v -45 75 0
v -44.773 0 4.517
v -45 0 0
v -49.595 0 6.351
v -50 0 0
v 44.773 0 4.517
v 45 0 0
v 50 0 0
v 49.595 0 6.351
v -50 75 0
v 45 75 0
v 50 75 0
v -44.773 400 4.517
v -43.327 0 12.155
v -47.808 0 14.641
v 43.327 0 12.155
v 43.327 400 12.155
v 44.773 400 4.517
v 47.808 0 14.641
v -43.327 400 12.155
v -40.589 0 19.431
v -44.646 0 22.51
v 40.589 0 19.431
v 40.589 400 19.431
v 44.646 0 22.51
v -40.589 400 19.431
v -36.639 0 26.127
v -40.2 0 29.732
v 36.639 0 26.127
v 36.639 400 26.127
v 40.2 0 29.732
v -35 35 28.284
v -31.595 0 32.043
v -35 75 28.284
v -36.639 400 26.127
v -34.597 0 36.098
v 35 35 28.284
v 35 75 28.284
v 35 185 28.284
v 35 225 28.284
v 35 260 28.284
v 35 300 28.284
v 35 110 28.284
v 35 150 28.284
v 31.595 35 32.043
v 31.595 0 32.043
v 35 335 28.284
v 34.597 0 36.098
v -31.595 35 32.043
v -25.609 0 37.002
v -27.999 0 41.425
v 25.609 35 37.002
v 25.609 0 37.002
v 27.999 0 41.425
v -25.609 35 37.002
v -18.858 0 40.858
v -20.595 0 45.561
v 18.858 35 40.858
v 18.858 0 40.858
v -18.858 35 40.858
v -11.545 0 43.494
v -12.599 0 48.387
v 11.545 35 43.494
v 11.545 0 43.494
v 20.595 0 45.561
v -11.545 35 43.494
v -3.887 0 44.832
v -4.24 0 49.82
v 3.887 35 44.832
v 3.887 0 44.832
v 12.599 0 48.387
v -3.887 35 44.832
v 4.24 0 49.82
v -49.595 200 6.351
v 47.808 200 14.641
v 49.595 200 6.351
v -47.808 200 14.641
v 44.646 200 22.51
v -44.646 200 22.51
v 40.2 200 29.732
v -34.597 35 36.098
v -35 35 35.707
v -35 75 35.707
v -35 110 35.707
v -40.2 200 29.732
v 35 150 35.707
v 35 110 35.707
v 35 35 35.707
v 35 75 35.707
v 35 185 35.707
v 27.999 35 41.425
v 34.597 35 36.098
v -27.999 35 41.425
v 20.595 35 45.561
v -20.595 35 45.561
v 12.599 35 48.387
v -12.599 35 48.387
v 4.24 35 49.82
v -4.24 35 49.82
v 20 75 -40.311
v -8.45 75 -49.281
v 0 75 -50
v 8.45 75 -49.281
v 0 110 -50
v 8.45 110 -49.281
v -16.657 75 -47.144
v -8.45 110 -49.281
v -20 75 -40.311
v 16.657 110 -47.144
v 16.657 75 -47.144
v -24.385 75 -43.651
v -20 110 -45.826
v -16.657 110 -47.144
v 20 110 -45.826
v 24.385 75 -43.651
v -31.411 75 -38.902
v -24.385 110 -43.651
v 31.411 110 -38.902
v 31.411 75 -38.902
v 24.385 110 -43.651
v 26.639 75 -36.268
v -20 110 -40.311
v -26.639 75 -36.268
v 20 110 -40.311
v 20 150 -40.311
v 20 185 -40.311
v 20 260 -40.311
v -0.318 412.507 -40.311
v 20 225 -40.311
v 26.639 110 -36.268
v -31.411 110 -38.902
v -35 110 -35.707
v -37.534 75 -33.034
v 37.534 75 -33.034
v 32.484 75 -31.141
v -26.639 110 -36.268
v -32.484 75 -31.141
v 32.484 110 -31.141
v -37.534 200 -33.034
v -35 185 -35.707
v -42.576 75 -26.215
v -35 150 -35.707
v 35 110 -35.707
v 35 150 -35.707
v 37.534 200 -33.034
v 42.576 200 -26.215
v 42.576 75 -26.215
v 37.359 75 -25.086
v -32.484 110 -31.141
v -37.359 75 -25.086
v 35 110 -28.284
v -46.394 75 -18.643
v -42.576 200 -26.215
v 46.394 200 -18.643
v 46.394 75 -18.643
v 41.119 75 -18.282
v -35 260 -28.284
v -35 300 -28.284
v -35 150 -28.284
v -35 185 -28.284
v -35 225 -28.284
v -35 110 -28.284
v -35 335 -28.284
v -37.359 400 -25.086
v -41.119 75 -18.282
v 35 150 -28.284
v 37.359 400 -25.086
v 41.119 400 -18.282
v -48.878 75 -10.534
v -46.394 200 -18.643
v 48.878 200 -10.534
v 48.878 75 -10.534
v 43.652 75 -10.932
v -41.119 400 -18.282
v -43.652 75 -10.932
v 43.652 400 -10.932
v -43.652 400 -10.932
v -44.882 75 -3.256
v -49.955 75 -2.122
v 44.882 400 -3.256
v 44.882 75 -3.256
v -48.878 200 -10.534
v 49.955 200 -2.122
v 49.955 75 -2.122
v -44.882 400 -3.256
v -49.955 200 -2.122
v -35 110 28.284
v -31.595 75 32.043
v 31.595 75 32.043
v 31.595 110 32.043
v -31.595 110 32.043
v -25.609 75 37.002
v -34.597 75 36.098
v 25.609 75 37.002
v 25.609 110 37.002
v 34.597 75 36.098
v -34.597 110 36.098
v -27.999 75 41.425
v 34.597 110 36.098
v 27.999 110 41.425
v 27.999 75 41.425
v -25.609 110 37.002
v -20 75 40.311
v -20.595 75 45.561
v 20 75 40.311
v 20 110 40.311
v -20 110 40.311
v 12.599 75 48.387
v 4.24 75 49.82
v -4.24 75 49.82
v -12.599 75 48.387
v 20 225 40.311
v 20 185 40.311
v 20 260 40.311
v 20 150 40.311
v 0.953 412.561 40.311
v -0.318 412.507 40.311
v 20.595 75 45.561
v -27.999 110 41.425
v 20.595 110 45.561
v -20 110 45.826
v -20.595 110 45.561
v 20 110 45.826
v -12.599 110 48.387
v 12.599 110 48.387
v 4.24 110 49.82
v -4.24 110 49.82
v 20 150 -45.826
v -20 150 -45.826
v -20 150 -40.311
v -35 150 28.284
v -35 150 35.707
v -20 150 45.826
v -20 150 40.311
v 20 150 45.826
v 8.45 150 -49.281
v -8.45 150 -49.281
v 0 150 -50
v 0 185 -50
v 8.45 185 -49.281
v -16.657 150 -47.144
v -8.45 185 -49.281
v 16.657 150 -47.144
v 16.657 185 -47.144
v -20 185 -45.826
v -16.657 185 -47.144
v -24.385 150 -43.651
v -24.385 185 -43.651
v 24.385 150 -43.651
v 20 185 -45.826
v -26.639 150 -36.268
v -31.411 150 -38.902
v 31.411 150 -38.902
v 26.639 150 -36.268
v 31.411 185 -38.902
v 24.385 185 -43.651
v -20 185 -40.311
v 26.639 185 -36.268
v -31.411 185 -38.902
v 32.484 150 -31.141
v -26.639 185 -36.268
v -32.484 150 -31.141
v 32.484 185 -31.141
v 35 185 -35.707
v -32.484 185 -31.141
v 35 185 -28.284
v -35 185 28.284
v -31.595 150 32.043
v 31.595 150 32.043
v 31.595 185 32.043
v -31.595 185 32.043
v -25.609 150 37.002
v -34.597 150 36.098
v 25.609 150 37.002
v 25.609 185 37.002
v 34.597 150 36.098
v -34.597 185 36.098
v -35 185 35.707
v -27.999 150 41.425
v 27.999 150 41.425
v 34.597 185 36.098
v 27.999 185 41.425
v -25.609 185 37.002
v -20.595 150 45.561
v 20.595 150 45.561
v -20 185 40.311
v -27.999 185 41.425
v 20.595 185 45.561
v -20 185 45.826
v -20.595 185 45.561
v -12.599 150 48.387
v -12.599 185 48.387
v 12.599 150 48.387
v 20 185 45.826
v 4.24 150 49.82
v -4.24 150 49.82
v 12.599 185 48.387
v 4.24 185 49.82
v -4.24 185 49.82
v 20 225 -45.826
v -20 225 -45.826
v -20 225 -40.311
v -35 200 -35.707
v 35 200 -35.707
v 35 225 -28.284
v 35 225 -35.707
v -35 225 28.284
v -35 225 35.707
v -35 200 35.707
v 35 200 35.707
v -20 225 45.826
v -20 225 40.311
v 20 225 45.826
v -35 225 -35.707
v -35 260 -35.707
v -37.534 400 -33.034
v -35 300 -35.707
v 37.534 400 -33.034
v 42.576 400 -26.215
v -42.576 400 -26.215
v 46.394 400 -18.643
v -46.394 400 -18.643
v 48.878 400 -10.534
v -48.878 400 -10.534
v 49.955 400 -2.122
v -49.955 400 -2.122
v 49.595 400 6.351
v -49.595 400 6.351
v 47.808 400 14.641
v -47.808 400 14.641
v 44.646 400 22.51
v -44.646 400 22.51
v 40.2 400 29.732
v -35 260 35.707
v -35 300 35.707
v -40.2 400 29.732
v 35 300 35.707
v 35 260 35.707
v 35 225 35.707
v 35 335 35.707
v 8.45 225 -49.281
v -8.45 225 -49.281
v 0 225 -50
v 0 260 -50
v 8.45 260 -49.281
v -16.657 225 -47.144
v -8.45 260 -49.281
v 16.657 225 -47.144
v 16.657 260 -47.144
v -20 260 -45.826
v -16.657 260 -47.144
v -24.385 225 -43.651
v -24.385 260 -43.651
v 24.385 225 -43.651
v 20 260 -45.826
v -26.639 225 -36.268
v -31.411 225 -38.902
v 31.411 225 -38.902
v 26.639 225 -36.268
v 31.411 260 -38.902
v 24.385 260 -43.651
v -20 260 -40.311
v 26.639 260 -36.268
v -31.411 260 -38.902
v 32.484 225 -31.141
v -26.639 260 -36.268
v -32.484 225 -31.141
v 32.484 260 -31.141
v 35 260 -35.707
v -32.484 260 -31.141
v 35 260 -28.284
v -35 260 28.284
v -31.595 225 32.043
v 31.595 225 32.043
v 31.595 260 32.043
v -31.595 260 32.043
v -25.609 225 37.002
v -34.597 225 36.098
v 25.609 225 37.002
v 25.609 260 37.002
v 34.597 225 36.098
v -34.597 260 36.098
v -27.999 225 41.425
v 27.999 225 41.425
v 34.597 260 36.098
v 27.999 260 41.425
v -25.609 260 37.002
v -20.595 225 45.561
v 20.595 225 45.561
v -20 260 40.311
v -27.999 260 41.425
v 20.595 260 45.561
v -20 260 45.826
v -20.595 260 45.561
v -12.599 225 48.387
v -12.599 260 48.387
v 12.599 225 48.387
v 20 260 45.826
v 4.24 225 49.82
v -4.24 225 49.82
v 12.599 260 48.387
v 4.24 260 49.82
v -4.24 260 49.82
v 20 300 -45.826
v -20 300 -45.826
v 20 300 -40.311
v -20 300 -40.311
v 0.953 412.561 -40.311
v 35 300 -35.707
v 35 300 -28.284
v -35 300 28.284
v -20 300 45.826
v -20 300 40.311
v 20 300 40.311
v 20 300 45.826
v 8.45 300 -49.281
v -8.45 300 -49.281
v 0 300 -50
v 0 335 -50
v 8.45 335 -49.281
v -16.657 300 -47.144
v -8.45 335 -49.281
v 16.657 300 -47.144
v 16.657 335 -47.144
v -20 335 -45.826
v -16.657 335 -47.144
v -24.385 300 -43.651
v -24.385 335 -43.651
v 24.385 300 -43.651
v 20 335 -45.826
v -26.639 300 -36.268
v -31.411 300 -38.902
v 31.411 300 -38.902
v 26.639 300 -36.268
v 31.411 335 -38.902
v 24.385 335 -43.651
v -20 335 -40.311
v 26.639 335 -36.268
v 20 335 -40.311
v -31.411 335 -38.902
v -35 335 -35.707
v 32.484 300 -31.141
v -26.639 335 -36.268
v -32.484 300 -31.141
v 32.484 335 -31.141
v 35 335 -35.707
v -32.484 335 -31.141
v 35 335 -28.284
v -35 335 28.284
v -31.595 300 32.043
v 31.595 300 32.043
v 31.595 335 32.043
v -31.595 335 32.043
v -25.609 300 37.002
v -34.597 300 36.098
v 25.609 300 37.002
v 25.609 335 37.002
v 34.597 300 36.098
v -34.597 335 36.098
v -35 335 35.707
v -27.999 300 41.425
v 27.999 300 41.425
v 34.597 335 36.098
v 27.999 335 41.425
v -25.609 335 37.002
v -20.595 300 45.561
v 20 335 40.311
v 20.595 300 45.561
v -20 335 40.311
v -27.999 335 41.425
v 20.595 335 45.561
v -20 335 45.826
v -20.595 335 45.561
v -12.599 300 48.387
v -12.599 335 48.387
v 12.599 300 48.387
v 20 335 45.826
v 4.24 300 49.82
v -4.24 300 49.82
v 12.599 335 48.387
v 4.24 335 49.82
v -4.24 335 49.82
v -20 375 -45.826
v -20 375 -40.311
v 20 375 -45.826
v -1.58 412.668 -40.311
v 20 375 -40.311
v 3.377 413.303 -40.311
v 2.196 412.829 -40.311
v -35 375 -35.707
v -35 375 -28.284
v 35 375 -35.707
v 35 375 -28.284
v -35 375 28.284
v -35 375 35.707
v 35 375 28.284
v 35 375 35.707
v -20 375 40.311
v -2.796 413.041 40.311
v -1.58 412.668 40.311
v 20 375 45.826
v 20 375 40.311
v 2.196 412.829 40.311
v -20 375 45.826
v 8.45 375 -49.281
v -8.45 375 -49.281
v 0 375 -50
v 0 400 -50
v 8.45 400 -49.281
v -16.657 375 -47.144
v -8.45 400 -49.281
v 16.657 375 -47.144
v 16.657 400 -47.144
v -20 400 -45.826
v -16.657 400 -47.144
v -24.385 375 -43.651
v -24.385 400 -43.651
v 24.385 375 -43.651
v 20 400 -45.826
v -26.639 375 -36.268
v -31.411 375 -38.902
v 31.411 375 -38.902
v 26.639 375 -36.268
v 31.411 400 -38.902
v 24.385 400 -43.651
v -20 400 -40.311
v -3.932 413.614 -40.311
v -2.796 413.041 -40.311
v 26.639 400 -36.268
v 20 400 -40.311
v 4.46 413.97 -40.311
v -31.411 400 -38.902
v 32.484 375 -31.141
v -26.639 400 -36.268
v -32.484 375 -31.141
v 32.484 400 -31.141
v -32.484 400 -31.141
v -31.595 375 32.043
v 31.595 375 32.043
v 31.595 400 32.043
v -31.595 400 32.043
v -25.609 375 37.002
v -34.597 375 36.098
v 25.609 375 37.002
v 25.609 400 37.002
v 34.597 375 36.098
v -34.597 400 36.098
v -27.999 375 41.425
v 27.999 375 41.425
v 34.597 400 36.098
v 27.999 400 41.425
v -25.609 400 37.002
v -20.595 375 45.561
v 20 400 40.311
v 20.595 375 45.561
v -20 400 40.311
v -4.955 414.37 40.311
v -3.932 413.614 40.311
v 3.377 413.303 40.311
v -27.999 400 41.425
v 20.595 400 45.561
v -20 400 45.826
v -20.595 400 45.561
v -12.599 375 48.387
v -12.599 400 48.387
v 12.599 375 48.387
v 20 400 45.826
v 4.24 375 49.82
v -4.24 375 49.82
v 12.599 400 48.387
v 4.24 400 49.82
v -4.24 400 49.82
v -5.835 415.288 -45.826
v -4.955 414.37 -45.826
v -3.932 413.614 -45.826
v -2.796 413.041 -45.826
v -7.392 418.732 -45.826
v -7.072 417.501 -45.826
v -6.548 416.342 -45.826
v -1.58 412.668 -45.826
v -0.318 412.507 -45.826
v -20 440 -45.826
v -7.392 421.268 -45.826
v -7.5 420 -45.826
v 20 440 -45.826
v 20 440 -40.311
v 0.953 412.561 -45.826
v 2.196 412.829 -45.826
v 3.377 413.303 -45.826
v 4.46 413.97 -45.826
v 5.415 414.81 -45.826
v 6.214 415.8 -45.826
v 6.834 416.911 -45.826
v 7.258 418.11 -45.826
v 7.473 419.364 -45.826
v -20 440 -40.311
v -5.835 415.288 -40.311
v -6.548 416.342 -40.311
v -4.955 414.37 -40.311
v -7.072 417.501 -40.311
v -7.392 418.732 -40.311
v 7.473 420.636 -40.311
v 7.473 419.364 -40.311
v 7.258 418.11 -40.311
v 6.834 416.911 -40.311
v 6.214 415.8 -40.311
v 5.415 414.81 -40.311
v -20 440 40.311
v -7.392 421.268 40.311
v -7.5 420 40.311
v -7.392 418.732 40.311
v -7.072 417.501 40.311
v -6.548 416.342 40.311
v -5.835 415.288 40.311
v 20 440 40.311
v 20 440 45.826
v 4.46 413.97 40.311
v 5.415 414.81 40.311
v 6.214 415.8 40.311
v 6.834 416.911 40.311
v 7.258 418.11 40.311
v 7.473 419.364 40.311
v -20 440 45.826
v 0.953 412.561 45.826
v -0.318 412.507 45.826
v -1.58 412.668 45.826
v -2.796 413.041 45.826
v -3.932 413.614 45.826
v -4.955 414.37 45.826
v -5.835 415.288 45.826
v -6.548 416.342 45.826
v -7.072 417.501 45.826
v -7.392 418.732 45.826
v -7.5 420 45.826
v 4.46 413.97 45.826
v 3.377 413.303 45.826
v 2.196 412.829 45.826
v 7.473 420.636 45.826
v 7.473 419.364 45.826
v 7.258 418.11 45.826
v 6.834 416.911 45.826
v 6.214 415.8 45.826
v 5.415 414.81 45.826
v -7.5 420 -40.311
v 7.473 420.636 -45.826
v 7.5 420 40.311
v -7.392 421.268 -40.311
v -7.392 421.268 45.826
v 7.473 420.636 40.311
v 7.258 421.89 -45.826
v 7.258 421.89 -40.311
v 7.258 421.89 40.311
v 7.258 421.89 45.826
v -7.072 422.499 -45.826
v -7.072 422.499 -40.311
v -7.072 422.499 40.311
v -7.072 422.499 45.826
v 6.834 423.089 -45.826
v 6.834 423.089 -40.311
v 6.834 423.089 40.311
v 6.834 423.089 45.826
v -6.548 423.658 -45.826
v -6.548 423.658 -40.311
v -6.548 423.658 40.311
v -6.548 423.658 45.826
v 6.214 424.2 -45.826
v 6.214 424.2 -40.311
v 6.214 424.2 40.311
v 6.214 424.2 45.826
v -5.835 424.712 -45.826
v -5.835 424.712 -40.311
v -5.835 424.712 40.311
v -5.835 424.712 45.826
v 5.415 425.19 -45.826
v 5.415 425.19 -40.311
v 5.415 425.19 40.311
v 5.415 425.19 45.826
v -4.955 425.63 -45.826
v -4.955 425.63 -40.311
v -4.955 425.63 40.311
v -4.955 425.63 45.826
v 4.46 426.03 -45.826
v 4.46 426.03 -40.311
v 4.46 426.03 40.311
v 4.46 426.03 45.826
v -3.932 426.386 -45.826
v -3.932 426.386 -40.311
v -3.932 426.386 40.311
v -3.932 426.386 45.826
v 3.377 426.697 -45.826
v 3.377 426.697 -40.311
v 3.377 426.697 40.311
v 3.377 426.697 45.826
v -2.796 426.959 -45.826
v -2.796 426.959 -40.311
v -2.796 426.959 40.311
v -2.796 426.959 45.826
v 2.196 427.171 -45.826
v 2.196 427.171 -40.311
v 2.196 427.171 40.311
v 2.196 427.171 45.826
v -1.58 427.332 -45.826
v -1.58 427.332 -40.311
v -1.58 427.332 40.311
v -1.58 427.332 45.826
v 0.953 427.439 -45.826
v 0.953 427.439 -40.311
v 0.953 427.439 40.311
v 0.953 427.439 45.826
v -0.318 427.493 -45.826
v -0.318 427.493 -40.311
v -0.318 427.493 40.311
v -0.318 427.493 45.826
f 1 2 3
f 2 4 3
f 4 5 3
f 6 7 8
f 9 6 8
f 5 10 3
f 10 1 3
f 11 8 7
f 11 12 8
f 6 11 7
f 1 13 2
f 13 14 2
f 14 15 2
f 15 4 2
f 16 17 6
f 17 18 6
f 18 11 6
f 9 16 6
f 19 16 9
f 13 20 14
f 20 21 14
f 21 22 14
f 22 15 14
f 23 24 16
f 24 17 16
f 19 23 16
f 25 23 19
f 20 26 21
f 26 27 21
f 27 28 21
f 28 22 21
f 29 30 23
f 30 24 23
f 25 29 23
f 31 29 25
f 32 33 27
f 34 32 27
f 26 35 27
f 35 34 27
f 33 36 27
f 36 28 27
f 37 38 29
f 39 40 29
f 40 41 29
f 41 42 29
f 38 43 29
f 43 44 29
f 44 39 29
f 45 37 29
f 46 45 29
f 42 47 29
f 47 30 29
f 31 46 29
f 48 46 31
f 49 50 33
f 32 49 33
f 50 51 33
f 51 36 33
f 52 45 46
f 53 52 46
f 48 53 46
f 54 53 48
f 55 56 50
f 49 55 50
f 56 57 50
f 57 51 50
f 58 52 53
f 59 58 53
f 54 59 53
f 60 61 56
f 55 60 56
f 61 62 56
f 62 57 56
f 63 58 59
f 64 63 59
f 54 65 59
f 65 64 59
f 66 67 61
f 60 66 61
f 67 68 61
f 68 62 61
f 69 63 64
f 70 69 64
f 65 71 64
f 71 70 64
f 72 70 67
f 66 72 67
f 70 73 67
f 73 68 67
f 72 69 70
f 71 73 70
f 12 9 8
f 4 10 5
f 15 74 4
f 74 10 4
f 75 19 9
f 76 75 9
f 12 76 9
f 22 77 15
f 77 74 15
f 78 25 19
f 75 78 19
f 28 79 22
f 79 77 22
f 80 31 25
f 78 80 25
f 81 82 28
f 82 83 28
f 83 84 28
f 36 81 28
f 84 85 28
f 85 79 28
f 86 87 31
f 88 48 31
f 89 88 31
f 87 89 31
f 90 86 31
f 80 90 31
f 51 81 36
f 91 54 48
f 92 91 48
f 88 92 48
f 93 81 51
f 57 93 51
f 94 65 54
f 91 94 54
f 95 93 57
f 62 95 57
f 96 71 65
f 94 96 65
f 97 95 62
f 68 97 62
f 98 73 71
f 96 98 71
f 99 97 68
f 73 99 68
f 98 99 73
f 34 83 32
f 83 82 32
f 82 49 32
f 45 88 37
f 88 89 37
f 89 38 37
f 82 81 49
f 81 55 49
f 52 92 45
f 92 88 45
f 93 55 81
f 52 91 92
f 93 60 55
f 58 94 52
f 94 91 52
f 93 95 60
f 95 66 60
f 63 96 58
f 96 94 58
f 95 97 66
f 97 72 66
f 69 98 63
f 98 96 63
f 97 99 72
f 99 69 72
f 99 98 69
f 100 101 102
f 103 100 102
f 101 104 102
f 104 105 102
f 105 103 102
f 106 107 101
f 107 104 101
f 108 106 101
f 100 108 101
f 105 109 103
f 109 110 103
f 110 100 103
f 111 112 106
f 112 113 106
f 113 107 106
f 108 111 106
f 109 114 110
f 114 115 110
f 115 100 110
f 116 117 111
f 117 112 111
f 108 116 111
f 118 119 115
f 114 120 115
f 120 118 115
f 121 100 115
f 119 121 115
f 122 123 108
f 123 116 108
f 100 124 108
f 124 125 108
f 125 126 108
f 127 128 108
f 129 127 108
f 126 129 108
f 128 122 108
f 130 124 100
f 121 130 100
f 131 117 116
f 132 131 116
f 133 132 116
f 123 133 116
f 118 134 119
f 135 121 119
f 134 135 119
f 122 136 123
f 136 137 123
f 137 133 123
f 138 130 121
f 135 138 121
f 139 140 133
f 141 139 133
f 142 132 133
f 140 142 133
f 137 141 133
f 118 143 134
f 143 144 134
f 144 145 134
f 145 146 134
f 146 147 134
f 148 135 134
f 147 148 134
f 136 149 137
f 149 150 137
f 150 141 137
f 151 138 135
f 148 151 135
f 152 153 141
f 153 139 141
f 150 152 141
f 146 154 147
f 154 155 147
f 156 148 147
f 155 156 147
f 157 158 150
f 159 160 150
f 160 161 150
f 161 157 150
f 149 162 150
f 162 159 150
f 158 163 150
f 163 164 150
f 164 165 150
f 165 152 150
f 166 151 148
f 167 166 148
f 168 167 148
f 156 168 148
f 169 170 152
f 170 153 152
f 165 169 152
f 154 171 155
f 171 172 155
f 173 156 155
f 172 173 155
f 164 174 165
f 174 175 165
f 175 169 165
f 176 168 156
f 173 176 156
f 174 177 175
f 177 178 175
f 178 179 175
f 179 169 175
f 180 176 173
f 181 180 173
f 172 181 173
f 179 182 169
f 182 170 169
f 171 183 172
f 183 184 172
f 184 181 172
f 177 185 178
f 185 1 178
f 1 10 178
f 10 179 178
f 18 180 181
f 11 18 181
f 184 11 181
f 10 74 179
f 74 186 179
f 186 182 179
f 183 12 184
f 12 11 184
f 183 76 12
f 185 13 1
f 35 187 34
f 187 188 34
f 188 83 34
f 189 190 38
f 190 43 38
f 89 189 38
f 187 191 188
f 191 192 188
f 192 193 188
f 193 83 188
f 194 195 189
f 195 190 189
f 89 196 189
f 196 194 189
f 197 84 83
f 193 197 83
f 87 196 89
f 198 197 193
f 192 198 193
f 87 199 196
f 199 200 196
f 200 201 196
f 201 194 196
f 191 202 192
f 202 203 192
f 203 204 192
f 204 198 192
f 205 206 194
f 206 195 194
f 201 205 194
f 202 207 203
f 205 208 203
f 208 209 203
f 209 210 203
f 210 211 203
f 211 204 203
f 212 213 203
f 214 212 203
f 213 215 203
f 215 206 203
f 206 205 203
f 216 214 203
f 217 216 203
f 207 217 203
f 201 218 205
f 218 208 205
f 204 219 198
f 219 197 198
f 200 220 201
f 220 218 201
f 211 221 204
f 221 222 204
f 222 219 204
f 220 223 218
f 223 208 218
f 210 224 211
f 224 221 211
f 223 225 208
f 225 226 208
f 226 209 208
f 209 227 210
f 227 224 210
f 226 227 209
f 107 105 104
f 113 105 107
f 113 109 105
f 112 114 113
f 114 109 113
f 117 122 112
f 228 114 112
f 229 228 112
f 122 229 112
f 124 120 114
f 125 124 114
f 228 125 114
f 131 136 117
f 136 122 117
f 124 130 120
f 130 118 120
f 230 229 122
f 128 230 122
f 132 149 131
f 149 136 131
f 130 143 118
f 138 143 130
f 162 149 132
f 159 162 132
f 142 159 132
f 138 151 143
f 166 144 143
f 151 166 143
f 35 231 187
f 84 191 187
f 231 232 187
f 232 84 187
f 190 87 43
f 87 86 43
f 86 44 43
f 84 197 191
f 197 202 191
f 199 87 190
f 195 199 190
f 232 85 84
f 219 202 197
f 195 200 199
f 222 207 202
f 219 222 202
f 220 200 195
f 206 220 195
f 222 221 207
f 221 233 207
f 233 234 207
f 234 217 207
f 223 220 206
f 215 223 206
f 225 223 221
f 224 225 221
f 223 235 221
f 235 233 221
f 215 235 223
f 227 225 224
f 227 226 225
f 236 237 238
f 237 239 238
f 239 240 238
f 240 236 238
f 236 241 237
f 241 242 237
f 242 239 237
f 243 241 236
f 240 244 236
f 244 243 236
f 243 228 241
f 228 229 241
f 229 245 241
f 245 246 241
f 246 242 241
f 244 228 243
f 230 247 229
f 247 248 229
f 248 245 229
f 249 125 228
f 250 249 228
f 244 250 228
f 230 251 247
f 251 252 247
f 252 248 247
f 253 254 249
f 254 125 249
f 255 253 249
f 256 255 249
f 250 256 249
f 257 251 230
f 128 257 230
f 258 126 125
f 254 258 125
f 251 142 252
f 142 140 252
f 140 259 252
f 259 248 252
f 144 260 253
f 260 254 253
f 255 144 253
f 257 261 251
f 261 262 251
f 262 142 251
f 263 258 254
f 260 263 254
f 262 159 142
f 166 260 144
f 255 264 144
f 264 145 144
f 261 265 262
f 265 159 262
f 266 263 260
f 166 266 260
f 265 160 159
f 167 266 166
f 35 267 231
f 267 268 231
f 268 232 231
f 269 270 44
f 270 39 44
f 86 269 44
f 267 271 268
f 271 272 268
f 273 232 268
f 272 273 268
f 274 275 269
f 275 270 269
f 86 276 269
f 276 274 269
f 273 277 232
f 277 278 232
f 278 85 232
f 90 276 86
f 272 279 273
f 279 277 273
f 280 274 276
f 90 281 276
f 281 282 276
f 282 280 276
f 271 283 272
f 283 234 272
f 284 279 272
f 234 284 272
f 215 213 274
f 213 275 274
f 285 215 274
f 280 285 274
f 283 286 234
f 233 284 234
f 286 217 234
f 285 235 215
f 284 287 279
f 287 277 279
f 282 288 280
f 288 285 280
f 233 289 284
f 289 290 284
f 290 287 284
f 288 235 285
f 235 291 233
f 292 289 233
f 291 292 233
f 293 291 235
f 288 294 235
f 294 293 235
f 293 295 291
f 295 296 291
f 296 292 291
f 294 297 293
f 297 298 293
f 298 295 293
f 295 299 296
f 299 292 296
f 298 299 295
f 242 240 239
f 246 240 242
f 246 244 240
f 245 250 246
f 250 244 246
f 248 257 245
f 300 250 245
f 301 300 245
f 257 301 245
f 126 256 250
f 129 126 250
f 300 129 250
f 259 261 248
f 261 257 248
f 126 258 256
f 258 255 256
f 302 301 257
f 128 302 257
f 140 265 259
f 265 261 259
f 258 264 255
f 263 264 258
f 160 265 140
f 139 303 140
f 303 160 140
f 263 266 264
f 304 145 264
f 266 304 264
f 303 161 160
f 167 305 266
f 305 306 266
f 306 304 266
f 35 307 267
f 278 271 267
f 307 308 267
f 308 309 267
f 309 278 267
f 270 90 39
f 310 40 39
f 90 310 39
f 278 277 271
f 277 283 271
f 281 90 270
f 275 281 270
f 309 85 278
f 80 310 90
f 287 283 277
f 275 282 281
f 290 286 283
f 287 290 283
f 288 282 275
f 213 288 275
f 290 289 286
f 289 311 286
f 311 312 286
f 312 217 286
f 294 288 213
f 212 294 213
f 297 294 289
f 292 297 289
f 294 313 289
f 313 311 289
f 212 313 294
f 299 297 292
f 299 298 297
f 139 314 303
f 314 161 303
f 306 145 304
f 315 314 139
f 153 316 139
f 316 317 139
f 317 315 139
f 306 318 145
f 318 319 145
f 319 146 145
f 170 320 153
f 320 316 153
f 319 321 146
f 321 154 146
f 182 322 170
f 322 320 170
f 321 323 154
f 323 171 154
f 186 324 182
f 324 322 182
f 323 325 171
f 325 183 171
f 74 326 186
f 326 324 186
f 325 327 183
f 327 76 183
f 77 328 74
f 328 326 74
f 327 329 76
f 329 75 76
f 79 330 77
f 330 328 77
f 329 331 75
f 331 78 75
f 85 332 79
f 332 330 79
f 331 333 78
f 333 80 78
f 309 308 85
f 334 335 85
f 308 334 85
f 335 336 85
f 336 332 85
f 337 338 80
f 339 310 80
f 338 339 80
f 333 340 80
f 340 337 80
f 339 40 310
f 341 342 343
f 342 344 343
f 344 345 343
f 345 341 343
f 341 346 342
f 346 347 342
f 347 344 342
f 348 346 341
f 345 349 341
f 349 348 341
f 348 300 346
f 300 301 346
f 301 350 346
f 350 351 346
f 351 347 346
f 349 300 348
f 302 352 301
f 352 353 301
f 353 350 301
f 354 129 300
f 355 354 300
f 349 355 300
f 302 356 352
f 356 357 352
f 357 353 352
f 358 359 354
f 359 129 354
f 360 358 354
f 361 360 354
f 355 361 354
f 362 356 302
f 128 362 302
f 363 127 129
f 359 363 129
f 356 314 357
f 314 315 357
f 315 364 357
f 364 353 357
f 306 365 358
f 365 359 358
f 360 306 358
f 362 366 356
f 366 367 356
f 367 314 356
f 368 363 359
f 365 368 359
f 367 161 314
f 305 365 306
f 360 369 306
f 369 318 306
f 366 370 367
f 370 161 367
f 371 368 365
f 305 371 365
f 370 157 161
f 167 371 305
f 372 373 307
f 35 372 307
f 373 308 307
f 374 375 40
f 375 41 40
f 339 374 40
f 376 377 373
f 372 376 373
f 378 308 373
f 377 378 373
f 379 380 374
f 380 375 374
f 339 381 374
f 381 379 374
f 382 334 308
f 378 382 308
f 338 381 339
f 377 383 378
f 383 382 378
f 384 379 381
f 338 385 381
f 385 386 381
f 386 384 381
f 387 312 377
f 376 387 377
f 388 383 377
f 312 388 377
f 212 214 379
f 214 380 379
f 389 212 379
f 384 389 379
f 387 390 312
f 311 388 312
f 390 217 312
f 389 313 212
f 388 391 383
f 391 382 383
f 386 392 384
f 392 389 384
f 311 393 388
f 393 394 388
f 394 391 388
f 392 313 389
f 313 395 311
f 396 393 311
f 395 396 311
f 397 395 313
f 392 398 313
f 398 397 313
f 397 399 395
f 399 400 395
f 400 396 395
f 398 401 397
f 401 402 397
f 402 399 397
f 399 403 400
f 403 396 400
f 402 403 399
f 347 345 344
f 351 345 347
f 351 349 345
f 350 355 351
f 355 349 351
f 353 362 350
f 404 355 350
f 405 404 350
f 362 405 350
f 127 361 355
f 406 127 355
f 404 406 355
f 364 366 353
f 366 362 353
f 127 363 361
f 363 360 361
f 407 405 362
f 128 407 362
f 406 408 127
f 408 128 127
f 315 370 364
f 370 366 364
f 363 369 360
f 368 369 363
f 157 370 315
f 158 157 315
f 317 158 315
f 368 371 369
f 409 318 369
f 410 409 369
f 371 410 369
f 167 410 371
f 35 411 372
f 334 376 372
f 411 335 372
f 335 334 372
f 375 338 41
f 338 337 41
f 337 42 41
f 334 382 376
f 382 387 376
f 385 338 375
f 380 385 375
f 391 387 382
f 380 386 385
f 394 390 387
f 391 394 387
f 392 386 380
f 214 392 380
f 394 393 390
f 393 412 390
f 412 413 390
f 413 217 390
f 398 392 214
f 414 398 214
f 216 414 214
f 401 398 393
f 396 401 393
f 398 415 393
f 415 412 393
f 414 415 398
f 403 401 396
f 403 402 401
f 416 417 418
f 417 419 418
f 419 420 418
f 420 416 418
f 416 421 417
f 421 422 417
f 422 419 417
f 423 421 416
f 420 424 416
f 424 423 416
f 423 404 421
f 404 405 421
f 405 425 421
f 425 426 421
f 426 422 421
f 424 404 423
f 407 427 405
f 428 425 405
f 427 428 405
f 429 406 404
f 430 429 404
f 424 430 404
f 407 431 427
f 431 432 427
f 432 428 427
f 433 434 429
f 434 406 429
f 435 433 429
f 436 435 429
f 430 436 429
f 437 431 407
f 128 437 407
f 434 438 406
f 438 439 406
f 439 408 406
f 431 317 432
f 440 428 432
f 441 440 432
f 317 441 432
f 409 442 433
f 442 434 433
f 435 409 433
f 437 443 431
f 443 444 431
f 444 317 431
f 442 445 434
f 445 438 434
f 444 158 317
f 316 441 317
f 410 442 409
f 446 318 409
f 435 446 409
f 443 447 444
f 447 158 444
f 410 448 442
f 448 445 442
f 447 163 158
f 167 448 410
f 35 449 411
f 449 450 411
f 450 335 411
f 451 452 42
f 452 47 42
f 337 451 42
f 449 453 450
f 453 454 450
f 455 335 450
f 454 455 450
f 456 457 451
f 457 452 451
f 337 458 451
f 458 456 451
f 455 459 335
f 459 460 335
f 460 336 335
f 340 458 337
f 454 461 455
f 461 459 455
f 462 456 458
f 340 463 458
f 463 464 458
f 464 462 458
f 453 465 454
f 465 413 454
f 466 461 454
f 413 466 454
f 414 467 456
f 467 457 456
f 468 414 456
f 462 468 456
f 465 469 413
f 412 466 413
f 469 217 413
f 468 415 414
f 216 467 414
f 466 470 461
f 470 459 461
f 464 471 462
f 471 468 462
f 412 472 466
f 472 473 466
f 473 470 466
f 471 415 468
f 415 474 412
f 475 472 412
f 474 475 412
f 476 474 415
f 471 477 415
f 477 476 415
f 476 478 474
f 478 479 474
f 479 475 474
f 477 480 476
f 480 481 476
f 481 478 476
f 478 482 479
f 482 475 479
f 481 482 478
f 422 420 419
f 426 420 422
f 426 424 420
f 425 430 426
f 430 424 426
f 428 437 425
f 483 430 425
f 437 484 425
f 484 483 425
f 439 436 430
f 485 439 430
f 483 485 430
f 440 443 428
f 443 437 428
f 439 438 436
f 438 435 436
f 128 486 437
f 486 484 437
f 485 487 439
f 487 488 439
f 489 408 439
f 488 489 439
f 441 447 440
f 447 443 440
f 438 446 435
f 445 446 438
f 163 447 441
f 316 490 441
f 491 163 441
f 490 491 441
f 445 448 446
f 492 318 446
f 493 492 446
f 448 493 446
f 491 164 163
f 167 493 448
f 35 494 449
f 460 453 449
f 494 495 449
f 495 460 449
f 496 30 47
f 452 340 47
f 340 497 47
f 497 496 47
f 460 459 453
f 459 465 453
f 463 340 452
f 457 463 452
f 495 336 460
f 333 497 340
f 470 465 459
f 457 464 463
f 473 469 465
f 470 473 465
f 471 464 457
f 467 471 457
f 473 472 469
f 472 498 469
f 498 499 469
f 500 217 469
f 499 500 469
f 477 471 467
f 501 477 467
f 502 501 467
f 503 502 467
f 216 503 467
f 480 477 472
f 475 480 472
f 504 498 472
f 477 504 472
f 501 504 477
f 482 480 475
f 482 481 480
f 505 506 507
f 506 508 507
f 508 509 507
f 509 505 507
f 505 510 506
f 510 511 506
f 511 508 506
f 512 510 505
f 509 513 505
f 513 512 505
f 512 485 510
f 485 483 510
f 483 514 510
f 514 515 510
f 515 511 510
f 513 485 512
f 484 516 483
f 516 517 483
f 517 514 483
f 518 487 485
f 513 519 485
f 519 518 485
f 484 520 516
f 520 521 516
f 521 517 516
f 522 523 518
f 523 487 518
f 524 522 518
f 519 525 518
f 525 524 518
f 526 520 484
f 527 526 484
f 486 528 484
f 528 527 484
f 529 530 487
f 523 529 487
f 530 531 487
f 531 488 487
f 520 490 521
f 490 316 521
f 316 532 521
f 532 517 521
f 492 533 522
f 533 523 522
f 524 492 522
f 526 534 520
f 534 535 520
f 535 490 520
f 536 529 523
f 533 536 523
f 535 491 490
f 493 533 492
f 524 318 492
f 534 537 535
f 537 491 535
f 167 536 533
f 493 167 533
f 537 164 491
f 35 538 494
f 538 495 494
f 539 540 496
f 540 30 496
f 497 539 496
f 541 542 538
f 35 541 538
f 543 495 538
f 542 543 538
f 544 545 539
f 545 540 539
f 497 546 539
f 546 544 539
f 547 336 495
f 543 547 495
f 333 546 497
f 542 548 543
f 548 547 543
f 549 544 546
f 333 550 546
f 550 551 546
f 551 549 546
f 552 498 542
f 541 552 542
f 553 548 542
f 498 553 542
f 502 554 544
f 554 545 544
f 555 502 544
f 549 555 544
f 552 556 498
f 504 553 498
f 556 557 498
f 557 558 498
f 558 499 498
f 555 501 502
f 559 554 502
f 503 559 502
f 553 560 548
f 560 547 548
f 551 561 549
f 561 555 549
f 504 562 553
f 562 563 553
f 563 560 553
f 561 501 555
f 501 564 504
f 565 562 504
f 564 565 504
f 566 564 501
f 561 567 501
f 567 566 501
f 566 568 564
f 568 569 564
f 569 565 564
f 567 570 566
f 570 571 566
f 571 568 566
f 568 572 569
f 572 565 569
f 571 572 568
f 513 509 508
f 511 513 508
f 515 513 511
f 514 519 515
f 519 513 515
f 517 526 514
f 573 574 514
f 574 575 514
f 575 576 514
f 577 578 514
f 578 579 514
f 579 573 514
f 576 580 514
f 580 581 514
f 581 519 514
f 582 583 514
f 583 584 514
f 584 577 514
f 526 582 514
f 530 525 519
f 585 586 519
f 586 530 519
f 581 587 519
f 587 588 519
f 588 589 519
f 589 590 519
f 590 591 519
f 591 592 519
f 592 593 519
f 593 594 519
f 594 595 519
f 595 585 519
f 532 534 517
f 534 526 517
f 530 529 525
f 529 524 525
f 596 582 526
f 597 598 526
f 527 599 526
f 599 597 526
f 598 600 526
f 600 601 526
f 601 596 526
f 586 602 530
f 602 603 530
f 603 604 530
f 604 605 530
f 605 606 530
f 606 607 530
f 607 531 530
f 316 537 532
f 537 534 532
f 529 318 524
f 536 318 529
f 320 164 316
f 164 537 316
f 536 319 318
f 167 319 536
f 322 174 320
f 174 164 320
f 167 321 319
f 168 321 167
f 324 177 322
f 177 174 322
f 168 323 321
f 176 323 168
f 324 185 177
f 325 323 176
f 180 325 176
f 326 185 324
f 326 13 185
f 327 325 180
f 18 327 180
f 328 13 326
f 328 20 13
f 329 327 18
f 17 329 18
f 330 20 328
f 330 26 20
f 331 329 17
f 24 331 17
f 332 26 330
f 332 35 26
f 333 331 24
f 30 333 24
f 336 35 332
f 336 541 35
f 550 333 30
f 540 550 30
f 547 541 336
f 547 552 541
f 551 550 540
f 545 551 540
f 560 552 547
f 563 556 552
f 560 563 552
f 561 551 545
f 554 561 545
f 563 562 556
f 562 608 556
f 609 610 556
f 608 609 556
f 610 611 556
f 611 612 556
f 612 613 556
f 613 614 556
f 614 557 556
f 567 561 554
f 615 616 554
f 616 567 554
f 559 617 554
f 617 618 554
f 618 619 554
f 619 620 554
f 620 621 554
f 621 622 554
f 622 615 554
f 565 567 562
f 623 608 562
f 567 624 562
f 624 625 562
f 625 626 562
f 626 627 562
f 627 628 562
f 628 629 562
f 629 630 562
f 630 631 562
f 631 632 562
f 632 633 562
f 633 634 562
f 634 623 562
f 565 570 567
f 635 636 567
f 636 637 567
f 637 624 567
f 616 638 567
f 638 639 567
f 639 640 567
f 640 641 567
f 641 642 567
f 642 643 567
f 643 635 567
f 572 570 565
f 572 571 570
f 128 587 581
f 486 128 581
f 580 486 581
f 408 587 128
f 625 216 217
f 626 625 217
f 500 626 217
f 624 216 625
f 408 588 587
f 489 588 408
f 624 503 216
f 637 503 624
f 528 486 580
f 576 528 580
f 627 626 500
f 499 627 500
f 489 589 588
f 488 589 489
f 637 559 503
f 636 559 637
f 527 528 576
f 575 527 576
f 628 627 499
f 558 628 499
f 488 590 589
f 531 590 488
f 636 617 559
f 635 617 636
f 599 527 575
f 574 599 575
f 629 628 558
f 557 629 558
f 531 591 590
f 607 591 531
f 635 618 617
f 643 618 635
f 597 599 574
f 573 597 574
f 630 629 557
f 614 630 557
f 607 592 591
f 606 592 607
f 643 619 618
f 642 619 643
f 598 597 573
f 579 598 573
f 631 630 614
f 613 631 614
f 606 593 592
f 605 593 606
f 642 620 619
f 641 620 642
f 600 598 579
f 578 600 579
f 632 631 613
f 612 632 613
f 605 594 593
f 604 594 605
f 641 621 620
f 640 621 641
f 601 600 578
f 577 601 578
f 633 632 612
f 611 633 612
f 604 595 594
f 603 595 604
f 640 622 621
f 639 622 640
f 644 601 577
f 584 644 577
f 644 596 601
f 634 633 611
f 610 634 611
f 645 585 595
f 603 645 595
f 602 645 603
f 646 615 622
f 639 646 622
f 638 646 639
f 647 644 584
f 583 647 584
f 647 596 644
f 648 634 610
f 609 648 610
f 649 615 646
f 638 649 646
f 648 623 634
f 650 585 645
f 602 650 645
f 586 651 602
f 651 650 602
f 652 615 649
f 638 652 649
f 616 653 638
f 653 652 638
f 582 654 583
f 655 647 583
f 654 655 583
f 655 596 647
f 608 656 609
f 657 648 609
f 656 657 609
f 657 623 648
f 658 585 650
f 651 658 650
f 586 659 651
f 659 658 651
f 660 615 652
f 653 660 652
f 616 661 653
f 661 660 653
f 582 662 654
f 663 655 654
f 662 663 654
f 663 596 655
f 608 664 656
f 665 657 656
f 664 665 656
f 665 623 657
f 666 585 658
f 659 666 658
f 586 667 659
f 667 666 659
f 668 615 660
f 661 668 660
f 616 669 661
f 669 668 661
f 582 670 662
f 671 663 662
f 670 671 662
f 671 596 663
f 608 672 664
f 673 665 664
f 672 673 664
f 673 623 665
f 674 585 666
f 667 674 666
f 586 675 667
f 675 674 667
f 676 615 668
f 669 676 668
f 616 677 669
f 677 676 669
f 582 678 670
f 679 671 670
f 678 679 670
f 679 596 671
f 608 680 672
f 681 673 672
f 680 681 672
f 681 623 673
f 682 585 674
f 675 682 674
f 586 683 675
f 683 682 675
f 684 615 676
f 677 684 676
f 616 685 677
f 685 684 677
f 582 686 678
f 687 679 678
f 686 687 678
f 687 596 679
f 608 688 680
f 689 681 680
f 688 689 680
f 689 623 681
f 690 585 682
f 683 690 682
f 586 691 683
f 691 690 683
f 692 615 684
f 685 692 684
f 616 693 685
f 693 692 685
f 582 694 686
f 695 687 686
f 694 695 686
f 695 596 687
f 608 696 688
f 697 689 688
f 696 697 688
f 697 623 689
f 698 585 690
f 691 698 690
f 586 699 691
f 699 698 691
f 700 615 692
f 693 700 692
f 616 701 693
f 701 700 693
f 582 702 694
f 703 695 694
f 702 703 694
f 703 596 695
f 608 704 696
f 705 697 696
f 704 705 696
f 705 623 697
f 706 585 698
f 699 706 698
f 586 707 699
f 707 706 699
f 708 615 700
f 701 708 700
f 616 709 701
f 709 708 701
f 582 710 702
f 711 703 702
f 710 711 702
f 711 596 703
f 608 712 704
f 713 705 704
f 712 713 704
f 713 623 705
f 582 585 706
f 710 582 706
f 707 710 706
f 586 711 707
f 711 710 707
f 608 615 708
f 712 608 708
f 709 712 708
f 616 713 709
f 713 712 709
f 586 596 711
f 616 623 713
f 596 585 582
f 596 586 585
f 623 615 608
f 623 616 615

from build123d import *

# Parameters (mm, degrees)
SKETCH1_R           = 50
BOSS_EXTRUDE1_DEPTH = 400
SHELL1_T            = -10
SKETCH2_R           = 40
CUT_EXTRUDE1_DEPTH  = 400
SKETCH3_W           = 70
SKETCH3_H           = 40
CUT_EXTRUDE2_DEPTH  = 200
SKETCH4_R           = 45
CUT_EXTRUDE3_DEPTH  = 400
CUT_EXTRUDE7_DEPTH  = 75
BOSS_EXTRUDE3_START = -325
SKETCH9_W           = 40
SKETCH9_H           = 5.514468209
BOSS_EXTRUDE3_DEPTH = 365
SKETCH10_R          = 7.5
CUT_EXTRUDE8_DEPTH  = 454.081202098


with BuildPart() as part:
    # Sketch1 → Boss-Extrude1 (new body)
    with BuildSketch(Plane(origin=(0, 0, 0), x_dir=(1, 0, 0), z_dir=(0, 1, 0))):
        with Locations(Location((0, 0, 0), (0, 0, 90))):
            Circle(SKETCH1_R)
    extrude(amount=BOSS_EXTRUDE1_DEPTH)

    # Shell1
    shell1_openings = [part.faces().sort_by_distance(p)[0] for p in [
        (0, 0, 0),
    ]]
    offset(amount=SHELL1_T, openings=shell1_openings, kind=Kind.INTERSECTION)

    # Sketch2 → Cut-Extrude1 (cut)
    with BuildSketch(Plane.XZ.offset(-390)):
        with Locations(Location((0, 0, 0), (0, 0, 270))):
            Circle(SKETCH2_R)
    extrude(amount=-CUT_EXTRUDE1_DEPTH, mode=Mode.SUBTRACT)

    # Sketch3 → Cut-Extrude2 (cut, symmetric)
    with BuildSketch(Plane.XY):
        with Locations((0, 355)):
            Rectangle(SKETCH3_W, SKETCH3_H)
        with Locations((0, 280)):
            Rectangle(SKETCH3_W, SKETCH3_H)
        with Locations((0, 205)):
            Rectangle(SKETCH3_W, SKETCH3_H)
        with Locations((0, 130)):
            Rectangle(SKETCH3_W, SKETCH3_H)
        with Locations((0, 55)):
            Rectangle(SKETCH3_W, SKETCH3_H)
    extrude(amount=CUT_EXTRUDE2_DEPTH, both=True, mode=Mode.SUBTRACT)

    # Sketch4 → Cut-Extrude3 (cut)
    with BuildSketch(Plane(origin=(0, 400, 0), x_dir=(1, 0, 0), z_dir=(0, 1, 0))):
        with Locations(Location((0, 0, 0), (0, 0, 270))):
            Circle(SKETCH4_R)
    extrude(amount=-CUT_EXTRUDE3_DEPTH, mode=Mode.SUBTRACT)

    # Sketch8 → Cut-Extrude7 (cut)
    with BuildSketch(Plane(origin=(0, 0, 0), x_dir=(1, 0, 0), z_dir=(0, 1, 0))):
        Polygon((-283.60679775, 0), (-50, 0), (50, 0), (283.60679775, 0), (283.60679775, 467.2135955), (-283.60679775, 467.2135955), align=None)
    extrude(amount=CUT_EXTRUDE7_DEPTH, mode=Mode.SUBTRACT)

    # Sketch9 → Boss-Extrude3 (add)
    with BuildSketch(Plane(origin=(0, 400, 0), x_dir=(1, 0, 0), z_dir=(0, 1, 0)).offset(BOSS_EXTRUDE3_START)):
        with Locations((0, 43.068522846)):
            Rectangle(SKETCH9_W, SKETCH9_H)
        with Locations((0, -43.068522846)):
            Rectangle(SKETCH9_W, SKETCH9_H)
    extrude(amount=BOSS_EXTRUDE3_DEPTH)

    # Sketch10 → Cut-Extrude8 (cut, through all)
    with BuildSketch(Plane(origin=(0, 0, -45.82575695), x_dir=(-1, 0, 0), z_dir=(0, 0, -1))):
        with Locations((0, 420)):
            Circle(SKETCH10_R)
    extrude(amount=-CUT_EXTRUDE8_DEPTH, mode=Mode.SUBTRACT)


solid = part.part
